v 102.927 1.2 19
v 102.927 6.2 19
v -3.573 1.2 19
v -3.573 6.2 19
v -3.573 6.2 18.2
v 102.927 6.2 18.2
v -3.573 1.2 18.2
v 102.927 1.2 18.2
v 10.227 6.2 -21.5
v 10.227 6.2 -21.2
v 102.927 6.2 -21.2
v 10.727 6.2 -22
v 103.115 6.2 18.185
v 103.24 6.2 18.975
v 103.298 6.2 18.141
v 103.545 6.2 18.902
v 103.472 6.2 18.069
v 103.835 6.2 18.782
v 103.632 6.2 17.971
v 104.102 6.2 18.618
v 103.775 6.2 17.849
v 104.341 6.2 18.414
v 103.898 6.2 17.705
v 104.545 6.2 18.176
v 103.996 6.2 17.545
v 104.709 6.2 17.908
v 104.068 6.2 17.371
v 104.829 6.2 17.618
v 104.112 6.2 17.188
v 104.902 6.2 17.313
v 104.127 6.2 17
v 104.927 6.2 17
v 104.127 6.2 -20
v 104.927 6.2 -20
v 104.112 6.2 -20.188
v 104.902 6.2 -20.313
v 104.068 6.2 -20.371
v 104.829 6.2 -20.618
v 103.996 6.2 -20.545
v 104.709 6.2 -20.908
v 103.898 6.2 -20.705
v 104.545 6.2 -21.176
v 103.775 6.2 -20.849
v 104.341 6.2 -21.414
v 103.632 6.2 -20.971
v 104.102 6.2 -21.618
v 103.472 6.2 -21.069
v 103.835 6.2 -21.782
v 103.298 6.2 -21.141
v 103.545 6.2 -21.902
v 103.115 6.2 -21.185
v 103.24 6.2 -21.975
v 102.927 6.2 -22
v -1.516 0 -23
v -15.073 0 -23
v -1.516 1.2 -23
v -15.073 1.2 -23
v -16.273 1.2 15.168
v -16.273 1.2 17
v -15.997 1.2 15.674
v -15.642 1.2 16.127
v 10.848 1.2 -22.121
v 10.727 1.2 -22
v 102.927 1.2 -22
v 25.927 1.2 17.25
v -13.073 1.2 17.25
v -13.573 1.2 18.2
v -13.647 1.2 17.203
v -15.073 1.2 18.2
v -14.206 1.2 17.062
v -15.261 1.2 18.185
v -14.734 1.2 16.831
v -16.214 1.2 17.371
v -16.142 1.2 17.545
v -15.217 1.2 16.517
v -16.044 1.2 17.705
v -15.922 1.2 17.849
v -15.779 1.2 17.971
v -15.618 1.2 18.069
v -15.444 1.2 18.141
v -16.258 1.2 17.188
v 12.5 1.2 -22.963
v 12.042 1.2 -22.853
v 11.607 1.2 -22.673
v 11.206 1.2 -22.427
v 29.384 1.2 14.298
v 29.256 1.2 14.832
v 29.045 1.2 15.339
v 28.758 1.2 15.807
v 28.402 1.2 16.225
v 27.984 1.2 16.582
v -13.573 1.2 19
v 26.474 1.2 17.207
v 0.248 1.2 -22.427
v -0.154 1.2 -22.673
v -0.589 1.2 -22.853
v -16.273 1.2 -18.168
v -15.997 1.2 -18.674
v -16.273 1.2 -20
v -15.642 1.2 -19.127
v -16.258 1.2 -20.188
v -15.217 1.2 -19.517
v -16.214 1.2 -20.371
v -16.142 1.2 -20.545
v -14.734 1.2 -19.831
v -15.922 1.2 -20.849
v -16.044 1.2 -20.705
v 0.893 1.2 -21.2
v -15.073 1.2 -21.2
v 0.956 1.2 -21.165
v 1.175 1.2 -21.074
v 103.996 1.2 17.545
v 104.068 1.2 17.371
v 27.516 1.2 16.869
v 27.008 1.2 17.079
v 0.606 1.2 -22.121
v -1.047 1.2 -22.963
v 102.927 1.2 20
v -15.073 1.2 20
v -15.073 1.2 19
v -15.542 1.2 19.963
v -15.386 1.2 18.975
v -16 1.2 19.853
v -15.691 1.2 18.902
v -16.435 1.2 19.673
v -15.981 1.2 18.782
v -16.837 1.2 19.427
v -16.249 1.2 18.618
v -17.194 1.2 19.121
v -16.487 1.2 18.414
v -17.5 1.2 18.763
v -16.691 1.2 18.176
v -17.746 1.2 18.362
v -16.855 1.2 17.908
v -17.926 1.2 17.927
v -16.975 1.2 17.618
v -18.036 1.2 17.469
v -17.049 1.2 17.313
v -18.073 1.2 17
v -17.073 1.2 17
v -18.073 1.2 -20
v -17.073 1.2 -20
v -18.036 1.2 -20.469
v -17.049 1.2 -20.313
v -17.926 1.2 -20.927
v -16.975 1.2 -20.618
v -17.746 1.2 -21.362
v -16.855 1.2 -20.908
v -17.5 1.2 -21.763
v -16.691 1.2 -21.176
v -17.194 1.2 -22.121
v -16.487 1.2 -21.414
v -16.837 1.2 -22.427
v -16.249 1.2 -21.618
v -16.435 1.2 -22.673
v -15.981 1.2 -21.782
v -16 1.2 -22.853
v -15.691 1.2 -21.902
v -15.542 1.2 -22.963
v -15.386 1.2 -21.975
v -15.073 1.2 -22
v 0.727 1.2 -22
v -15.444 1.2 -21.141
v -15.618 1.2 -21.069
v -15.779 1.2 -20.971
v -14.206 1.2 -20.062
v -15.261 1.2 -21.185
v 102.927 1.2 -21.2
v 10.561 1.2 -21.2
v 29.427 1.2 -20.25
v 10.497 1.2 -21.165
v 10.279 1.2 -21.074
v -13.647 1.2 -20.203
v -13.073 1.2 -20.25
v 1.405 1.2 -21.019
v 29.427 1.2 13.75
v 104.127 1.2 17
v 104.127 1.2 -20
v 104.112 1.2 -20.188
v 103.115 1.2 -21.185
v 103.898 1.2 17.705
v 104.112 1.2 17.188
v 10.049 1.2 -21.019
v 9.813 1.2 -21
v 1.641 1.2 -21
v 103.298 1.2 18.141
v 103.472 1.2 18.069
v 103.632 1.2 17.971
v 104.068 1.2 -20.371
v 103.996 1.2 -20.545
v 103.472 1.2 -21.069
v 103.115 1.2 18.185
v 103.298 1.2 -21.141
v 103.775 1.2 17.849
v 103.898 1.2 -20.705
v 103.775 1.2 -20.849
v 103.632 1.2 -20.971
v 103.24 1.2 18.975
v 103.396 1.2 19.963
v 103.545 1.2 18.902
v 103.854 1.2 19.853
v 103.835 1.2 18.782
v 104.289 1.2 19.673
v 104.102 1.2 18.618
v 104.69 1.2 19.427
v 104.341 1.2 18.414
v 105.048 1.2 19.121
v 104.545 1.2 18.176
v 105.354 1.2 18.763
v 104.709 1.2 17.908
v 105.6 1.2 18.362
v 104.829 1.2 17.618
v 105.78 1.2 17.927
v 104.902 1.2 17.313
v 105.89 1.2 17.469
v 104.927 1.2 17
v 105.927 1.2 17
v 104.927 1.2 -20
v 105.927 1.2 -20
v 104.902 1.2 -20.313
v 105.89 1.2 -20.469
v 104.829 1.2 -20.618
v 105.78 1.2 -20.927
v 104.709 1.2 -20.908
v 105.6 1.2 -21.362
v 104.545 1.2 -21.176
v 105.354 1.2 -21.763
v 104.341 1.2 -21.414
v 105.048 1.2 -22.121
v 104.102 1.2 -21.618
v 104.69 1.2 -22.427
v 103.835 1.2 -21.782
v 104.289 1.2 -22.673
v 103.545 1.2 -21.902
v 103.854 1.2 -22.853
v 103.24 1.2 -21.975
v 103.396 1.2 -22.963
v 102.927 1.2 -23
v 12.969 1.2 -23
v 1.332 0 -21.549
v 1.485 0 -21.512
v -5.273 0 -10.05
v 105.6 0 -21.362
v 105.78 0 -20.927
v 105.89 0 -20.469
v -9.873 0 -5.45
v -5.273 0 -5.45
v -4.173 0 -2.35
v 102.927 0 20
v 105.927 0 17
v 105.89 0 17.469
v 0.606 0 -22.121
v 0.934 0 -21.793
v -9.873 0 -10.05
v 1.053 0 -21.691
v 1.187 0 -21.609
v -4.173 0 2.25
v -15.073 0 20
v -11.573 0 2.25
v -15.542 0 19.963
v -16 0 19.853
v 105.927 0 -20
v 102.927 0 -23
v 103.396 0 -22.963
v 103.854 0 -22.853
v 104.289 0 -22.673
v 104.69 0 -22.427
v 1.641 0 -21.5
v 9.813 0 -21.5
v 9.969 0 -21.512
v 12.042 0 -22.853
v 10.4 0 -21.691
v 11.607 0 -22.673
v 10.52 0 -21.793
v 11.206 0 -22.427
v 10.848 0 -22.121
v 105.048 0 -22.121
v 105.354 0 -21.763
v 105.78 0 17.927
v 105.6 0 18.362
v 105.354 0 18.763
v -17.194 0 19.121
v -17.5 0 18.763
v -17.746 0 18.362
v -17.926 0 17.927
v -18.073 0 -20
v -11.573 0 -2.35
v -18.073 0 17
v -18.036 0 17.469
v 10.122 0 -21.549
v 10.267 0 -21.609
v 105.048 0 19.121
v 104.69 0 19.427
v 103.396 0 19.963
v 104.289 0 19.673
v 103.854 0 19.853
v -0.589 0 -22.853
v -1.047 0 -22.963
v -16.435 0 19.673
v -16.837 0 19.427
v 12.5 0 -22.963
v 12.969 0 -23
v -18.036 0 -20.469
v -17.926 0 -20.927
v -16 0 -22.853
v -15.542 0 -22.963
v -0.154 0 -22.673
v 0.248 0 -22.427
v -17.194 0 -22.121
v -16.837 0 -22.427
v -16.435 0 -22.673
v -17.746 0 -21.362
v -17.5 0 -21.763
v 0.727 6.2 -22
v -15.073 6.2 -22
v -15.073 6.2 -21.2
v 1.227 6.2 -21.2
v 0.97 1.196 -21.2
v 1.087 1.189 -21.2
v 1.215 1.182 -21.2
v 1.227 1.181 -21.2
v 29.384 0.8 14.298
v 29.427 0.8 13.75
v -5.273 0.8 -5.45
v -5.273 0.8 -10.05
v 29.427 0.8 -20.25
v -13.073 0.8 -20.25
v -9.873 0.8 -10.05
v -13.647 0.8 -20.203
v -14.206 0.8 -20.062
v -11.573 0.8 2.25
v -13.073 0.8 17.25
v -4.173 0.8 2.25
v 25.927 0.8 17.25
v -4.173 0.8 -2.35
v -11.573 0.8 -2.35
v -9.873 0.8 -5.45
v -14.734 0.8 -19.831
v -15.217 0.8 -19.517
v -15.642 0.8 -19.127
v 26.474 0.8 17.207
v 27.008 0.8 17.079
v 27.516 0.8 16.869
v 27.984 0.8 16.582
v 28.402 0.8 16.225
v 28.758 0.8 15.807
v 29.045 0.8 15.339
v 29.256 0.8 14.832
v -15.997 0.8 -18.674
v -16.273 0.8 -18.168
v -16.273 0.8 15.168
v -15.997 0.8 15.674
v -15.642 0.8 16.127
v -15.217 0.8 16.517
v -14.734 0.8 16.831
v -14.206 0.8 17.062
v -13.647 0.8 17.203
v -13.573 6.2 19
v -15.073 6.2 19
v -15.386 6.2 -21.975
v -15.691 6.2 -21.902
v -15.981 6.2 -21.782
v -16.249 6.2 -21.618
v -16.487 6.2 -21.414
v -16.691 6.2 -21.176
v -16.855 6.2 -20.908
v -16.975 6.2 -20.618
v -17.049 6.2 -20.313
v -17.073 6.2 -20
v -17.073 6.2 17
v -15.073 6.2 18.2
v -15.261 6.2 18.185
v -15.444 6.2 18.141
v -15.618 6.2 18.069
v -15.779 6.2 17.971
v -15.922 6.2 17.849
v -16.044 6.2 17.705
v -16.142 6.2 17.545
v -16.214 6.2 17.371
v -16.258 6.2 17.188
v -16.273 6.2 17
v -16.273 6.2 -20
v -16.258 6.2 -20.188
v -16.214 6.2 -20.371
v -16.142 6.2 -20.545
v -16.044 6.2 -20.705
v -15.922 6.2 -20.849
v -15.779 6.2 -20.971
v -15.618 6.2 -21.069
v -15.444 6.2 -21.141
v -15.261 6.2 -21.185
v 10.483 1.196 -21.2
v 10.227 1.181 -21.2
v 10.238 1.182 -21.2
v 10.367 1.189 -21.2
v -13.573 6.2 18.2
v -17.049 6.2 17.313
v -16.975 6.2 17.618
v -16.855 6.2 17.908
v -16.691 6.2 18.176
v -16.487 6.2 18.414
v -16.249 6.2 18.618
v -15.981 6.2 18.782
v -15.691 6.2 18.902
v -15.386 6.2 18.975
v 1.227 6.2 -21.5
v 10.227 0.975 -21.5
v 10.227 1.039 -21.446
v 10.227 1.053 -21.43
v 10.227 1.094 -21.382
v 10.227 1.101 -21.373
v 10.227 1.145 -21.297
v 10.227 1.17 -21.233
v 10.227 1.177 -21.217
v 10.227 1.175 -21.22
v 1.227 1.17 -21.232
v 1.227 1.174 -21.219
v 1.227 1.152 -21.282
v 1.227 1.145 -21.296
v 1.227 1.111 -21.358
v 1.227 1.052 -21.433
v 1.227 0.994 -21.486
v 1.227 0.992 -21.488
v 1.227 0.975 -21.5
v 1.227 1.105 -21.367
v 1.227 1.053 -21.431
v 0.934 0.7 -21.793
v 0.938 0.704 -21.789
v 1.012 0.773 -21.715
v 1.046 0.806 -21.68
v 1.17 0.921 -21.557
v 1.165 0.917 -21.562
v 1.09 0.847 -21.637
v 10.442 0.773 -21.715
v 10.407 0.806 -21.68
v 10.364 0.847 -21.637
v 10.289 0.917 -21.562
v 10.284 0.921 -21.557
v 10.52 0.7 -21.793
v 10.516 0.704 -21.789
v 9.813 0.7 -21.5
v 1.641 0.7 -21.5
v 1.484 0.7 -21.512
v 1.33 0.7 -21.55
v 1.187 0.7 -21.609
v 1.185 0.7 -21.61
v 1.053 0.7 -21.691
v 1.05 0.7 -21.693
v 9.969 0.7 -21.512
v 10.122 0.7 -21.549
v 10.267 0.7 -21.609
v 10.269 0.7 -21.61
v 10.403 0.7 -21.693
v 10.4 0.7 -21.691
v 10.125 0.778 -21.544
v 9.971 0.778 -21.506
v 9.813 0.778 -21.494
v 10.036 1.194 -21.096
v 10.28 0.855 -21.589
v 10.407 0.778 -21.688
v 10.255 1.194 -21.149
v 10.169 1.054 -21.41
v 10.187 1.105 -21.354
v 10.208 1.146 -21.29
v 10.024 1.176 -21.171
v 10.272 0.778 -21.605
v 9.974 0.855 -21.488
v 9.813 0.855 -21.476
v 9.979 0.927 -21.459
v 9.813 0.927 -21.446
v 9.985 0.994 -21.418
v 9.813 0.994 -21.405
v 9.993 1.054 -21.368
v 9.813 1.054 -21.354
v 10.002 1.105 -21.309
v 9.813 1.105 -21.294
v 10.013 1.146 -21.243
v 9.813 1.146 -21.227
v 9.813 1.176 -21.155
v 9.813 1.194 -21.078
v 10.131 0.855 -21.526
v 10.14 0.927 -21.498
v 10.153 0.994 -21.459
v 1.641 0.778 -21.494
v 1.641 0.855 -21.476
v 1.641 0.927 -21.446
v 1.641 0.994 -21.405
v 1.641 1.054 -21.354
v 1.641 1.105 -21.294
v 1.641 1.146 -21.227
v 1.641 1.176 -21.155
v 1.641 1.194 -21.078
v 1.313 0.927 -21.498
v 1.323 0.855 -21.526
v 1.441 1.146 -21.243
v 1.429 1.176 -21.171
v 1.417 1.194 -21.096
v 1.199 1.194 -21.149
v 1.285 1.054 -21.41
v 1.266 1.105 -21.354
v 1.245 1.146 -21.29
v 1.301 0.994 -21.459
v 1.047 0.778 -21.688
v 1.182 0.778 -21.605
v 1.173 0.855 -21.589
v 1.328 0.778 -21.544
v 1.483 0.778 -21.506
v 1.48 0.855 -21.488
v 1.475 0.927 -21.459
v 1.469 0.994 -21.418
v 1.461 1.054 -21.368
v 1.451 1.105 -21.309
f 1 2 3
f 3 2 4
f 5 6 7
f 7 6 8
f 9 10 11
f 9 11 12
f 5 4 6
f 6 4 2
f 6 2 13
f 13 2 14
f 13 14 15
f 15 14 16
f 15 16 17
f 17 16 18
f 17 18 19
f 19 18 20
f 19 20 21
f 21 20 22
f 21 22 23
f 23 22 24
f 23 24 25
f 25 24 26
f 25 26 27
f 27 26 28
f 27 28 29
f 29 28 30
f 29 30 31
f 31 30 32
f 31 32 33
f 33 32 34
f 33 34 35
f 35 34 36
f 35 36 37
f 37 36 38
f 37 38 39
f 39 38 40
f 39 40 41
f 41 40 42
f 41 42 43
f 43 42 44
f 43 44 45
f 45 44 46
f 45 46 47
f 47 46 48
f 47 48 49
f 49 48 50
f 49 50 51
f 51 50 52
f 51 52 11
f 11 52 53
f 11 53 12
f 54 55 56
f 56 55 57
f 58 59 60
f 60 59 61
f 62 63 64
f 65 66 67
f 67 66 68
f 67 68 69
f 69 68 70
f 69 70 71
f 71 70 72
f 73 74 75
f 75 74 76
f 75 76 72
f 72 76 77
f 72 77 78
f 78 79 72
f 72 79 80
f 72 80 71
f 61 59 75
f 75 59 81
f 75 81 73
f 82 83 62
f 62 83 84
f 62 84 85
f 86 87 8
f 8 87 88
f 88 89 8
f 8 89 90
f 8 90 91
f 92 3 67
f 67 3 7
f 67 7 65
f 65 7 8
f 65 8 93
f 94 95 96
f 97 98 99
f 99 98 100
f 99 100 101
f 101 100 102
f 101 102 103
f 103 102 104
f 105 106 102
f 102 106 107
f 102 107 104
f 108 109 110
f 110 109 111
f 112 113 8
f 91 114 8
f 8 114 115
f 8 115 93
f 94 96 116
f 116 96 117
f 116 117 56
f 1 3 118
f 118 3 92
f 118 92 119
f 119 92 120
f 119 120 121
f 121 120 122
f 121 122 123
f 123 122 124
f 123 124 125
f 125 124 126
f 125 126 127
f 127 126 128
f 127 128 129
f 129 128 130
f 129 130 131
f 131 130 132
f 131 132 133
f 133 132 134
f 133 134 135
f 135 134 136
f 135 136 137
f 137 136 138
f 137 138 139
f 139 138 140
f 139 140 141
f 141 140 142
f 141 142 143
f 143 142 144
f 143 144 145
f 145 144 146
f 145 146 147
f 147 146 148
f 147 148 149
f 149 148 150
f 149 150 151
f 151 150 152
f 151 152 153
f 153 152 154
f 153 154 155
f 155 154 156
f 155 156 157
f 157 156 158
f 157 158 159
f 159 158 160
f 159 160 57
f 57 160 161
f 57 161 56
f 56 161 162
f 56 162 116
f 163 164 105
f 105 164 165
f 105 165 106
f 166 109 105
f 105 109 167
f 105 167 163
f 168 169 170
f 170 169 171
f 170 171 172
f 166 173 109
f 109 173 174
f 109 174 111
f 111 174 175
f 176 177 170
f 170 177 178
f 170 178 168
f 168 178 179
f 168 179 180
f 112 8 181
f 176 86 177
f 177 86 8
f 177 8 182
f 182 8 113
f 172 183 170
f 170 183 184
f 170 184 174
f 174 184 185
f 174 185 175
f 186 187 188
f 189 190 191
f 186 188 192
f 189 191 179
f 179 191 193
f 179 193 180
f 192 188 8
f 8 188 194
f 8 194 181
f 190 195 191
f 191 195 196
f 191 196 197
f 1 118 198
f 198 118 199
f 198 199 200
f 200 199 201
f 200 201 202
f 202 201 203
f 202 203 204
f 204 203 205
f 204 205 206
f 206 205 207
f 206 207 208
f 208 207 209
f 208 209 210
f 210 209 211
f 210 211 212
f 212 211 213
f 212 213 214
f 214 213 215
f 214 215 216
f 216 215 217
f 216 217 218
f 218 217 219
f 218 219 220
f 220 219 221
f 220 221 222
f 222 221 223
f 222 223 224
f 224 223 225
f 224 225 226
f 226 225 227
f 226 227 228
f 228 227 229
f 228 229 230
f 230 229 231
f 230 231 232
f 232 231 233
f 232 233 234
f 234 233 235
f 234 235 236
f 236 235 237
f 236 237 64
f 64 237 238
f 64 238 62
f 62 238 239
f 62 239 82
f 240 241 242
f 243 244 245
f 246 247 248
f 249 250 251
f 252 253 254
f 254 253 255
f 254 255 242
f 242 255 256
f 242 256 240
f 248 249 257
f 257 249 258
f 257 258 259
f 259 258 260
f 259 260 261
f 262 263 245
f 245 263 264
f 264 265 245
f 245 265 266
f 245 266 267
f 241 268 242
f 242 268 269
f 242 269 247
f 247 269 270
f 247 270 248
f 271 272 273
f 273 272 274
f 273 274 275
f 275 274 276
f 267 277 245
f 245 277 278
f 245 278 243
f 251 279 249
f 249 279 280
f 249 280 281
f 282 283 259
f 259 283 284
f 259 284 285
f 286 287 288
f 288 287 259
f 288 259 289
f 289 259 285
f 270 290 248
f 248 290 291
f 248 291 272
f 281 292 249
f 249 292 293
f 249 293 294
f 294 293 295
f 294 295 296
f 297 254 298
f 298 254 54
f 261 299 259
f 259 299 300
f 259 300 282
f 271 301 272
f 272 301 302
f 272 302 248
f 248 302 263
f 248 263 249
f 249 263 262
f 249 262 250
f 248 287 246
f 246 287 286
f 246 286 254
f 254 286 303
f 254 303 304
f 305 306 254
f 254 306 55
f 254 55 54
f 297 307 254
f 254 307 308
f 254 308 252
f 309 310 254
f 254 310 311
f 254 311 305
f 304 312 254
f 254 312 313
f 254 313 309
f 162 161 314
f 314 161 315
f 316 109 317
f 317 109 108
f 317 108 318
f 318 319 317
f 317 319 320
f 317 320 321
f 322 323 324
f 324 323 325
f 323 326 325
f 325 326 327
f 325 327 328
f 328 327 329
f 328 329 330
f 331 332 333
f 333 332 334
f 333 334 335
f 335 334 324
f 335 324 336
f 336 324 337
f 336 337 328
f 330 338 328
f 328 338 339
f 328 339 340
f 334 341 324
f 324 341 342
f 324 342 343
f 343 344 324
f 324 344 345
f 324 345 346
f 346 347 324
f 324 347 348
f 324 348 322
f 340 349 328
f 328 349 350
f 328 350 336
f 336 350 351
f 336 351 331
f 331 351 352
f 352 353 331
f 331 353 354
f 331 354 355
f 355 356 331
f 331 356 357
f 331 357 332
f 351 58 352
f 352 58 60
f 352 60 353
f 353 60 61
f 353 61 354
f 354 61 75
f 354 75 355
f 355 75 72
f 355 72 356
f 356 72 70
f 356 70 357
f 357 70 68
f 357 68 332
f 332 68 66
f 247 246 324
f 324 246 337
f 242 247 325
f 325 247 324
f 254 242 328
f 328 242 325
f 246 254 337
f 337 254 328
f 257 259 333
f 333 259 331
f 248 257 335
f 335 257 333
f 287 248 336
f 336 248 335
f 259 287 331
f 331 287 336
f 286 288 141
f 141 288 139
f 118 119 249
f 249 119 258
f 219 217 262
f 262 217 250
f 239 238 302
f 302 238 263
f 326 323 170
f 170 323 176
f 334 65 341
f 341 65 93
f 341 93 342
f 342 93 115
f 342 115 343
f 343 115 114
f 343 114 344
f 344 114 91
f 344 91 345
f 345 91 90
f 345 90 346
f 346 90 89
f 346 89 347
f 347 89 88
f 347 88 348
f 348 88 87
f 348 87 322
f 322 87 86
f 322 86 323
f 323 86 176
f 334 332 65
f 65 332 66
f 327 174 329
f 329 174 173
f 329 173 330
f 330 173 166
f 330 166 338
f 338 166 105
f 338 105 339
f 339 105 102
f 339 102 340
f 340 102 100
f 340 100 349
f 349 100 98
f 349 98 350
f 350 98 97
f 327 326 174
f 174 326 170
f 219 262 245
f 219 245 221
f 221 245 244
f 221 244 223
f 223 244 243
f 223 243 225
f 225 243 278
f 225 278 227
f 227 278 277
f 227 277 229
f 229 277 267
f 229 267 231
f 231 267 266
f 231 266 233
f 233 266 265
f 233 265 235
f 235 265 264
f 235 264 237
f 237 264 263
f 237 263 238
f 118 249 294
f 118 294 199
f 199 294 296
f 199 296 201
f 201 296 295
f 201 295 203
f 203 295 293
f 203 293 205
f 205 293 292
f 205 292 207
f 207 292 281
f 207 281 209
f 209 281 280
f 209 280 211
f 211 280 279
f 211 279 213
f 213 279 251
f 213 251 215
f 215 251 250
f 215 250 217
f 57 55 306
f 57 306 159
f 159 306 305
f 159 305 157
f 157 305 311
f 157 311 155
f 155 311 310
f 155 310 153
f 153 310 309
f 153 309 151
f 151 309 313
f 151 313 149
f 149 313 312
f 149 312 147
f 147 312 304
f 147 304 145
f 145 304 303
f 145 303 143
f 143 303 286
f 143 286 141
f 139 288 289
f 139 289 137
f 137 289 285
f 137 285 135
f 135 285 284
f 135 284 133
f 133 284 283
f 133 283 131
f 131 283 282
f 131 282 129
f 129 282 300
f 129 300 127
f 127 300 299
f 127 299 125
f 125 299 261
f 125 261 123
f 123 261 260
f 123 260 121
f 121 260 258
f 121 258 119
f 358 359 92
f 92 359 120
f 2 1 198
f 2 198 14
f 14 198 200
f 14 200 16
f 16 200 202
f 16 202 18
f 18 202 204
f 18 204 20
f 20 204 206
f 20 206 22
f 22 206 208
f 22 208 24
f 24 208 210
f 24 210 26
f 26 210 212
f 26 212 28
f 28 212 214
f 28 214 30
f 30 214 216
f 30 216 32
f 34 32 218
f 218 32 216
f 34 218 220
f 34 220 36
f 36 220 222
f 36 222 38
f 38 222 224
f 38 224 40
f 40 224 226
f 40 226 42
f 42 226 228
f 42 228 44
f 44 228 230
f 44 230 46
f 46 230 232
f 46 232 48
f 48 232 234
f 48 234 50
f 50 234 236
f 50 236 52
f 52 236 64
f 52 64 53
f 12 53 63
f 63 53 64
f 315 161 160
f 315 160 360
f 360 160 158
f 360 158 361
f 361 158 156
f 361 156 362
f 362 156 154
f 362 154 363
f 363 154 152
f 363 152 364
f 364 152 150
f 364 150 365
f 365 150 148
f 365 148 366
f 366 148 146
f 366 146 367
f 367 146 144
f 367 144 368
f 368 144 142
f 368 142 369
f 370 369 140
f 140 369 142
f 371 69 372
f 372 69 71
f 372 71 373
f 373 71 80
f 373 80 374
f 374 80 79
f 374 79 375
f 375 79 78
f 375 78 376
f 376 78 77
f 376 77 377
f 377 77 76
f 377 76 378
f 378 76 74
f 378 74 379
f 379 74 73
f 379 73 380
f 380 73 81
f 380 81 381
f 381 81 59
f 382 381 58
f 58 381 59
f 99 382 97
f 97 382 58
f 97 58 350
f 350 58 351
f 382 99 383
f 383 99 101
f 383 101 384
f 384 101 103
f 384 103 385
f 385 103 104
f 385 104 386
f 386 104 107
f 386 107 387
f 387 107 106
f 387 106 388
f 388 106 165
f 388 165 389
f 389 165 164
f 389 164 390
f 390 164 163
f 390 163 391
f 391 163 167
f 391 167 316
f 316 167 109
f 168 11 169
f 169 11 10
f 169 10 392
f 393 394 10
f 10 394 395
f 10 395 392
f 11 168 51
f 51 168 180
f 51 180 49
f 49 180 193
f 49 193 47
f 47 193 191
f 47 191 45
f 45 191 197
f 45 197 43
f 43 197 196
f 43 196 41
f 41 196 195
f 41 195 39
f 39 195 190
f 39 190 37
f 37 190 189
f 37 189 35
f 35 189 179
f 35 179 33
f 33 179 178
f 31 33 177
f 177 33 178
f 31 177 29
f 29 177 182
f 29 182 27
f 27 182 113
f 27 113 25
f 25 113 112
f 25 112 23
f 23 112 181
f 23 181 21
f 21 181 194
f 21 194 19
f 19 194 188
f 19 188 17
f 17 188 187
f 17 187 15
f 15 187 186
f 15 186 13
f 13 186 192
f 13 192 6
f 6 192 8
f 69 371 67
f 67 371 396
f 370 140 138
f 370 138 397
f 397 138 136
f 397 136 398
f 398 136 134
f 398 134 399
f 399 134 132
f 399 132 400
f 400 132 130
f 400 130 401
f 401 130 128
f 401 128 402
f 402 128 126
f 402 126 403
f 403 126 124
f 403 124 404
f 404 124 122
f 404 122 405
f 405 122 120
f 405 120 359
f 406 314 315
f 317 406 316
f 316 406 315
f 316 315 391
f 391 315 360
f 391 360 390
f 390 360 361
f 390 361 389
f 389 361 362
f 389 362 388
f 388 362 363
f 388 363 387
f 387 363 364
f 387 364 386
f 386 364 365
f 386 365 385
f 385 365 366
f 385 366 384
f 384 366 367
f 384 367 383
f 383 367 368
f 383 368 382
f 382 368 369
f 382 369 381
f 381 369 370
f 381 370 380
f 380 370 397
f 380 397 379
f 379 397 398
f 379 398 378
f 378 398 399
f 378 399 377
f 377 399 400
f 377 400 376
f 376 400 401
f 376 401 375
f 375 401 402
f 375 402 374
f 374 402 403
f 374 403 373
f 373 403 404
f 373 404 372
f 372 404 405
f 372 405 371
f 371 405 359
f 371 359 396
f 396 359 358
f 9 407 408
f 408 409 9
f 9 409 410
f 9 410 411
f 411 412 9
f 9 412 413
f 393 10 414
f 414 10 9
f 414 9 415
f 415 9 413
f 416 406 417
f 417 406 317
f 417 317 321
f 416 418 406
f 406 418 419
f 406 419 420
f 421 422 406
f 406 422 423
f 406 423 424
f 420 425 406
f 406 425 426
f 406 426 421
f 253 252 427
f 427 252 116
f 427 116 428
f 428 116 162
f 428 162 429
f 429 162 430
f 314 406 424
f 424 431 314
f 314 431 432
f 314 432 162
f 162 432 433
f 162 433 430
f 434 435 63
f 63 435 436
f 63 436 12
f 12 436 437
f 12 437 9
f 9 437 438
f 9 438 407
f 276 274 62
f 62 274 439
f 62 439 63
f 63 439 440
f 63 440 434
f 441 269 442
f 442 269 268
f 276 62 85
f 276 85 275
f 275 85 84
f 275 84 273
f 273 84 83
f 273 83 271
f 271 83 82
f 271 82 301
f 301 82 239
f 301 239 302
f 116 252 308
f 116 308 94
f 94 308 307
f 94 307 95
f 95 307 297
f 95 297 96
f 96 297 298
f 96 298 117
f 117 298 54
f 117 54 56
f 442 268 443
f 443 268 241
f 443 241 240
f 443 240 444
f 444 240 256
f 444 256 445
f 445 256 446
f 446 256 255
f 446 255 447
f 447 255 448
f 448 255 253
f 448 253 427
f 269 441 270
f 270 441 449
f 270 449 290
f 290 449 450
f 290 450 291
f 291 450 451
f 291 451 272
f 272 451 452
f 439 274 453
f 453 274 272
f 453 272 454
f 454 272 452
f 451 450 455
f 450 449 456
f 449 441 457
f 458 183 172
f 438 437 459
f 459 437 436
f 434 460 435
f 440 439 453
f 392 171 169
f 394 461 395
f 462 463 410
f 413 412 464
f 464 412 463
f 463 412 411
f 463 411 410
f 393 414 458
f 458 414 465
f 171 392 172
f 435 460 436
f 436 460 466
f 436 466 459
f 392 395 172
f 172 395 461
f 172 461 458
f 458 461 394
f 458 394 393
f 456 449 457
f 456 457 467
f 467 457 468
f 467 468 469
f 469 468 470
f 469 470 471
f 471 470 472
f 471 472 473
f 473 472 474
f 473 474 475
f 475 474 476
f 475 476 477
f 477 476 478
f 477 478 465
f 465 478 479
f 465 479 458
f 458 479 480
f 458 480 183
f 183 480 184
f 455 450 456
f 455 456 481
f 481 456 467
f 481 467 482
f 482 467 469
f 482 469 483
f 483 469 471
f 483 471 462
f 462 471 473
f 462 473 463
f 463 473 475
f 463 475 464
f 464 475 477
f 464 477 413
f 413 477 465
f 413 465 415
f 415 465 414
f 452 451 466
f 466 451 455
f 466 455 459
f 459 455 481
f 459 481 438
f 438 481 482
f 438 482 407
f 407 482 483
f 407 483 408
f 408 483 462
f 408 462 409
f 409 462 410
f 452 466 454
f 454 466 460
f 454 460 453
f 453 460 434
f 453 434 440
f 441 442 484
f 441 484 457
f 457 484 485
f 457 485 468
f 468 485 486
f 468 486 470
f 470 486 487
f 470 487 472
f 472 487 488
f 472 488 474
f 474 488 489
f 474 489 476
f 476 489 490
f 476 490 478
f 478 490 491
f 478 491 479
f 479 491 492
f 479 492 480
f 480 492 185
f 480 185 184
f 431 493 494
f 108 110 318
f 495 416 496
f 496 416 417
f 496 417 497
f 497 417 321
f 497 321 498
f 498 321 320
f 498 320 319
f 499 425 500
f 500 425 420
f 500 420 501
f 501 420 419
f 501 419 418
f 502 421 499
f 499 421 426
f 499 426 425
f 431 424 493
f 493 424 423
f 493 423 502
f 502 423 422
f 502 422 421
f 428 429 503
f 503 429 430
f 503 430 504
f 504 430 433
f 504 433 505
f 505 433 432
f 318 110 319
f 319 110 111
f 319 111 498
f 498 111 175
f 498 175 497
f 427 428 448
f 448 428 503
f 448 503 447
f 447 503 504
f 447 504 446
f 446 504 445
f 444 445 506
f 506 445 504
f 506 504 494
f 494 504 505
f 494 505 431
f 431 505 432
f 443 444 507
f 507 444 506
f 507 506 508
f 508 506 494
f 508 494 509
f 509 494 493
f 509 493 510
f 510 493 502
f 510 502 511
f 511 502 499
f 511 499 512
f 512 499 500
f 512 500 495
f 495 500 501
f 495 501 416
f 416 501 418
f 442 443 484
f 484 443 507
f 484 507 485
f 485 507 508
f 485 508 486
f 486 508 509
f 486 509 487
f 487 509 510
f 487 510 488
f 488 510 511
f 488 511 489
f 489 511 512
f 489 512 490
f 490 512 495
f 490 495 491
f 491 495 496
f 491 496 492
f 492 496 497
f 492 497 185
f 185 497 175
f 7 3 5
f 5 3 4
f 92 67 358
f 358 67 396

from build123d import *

# Parameters (mm, degrees)
SKETCH_1_W               = 124
SKETCH_1_H               = 43
EXTRUDE_1_DEPTH          = 1.2
CUT_EXTRUDE_1_REACH      = 110.402
SKETCH_3_W               = 7.4
SKETCH_3_H               = 4.6
SKETCH_3_W_2             = 4.6
CUT_EXTRUDE_2_DEPTH      = 0.4
FILLET_1_R               = 3
EXTRUDE_START            = 5
EXTRUDE_5_DEPTH          = 5
SKETCH_7_W               = 0.8
SKETCH_7_H               = 5.4
EXTRUDE_6_DEPTH          = 33.335489
SKETCH_8_W               = 4.5
SKETCH_8_H               = 0.8
CUT_EXTRUDE_3_DEPTH      = 5
CHAMFER_2_SIZE           = 0.5
CUT_EXTRUDE_5_DEPTH      = 109.510329697
CUT_EXTRUDE_5_DEPTH_BACK = 109.510329697
FILLET_2_R               = 3
FILLET_3_R               = 1
FILLET_4_R               = 0.5
SKETCH_10_W              = 10
SKETCH_10_H              = 0.8
CUT_EXTRUDE_6_DEPTH      = 5


with BuildPart() as part:
    # Эскиз1 → Бобышка-Вытянуть1 (new body)
    with BuildSketch(Plane(origin=(0, 0, 0), x_dir=(1, 0, 0), z_dir=(0, 1, 0))):
        with Locations((43.92682215, 1.5)):
            Rectangle(SKETCH_1_W, SKETCH_1_H)
    extrude(amount=EXTRUDE_1_DEPTH)

    # Эскиз3 → Вырез-Вытянуть1 (cut, up to next)
    with BuildSketch(Plane.XZ, mode=Mode.PRIVATE) as cut_extrude_1_sk1:
        with Locations((-7.87317785, -0.05)):
            Rectangle(SKETCH_3_W, SKETCH_3_H)
    cut_extrude_1_tool1 = extrude(cut_extrude_1_sk1.sketch, amount=-CUT_EXTRUDE_1_REACH, mode=Mode.PRIVATE) & part.part
    # Эскиз3 → Вырез-Вытянуть1 (cut, up to next)
    with BuildSketch(Plane.XZ, mode=Mode.PRIVATE) as cut_extrude_1_sk2:
        with Locations((-7.57317785, -7.75)):
            Rectangle(SKETCH_3_W_2, SKETCH_3_H)
    cut_extrude_1_tool2 = extrude(cut_extrude_1_sk2.sketch, amount=-CUT_EXTRUDE_1_REACH, mode=Mode.PRIVATE) & part.part
    add(cut_extrude_1_tool1.solids().sort_by_distance((-7.873178, 0, -0.05))[0], mode=Mode.SUBTRACT)
    add(cut_extrude_1_tool2.solids().sort_by_distance((-7.573178, 0, -7.75))[0], mode=Mode.SUBTRACT)

    # Эскиз4 → Вырез-Вытянуть2 (cut)
    with BuildSketch(Plane(origin=(0, 1.2, 0), x_dir=(1, 0, 0), z_dir=(0, 1, 0))):
        with BuildLine():
            Line((4.110011464, 20.25), (7.343632837, 20.25))
            Line((7.343632837, 20.25), (29.42682215, 20.25))
            Line((29.42682215, 20.25), (29.42682215, -13.75))
            ThreePointArc((29.42682215, -13.75), (28.401695885, -16.224873734), (25.92682215, -17.25))
            Line((25.92682215, -17.25), (-13.07317785, -17.25))
            ThreePointArc((-13.07317785, -17.25), (-15.548051584, -16.224873734), (-16.57317785, -13.75))
            Line((-16.57317785, -13.75), (-16.57317785, 16.75))
            ThreePointArc((-16.57317785, 16.75), (-15.548051584, 19.224873734), (-13.07317785, 20.25))
            Line((-13.07317785, 20.25), (4.110011464, 20.25))
        make_face()
    extrude(amount=-CUT_EXTRUDE_2_DEPTH, mode=Mode.SUBTRACT)

    # Скругление1
    fillet_1_edges = [part.edges().sort_by_distance(p)[0] for p in [
        (-18.07317785, 0.6, -23),
        (105.92682215, 0.6, -23),
        (105.92682215, 0.6, 20),
        (-18.07317785, 0.6, 20),
    ]]
    fillet(fillet_1_edges, radius=FILLET_1_R)

    # Эскиз5 → Бобышка-Вытянуть5 (add)
    with BuildSketch(Plane(origin=(0, 1.2, 0), x_dir=(1, 0, 0), z_dir=(0, 1, 0)).offset(EXTRUDE_START)):
        with BuildLine():
            ThreePointArc((102.92682215, -19), (104.341035713, -18.414213562), (104.92682215, -17))
            Line((104.92682215, -17), (104.92682215, 20))
            ThreePointArc((104.92682215, 20), (104.341035713, 21.414213562), (102.92682215, 22))
            Line((102.92682215, 22), (-15.07317785, 22))
            ThreePointArc((-15.07317785, 22), (-16.487391412, 21.414213562), (-17.07317785, 20))
            Line((-17.07317785, 20), (-17.07317785, -17))
            ThreePointArc((-17.07317785, -17), (-16.487391412, -18.414213562), (-15.07317785, -19))
            Line((-15.07317785, -19), (102.92682215, -19))
        make_face()
        with BuildLine():
            Line((102.92682215, -18.2), (-15.07317785, -18.2))
            ThreePointArc((-15.07317785, -18.2), (-15.921705987, -17.848528137), (-16.27317785, -17))
            Line((-16.27317785, -17), (-16.27317785, -15.167744688))
            ThreePointArc((-16.27317785, -15.167744688), (-16.497356583, -14.474568837), (-16.57317785, -13.75))
            Line((-16.57317785, -13.75), (-16.57317785, 16.75))
            ThreePointArc((-16.57317785, 16.75), (-16.497356583, 17.474568837), (-16.27317785, 18.167744688))
            Line((-16.27317785, 18.167744688), (-16.27317785, 20))
            ThreePointArc((-16.27317785, 20), (-15.921705987, 20.848528137), (-15.07317785, 21.2))
            Line((-15.07317785, 21.2), (102.92682215, 21.2))
            ThreePointArc((102.92682215, 21.2), (103.775350288, 20.848528137), (104.12682215, 20))
            Line((104.12682215, 20), (104.12682215, -17))
            ThreePointArc((104.12682215, -17), (103.775350288, -17.848528137), (102.92682215, -18.2))
        make_face(mode=Mode.SUBTRACT)
    extrude(amount=-EXTRUDE_5_DEPTH)

    # Эскиз7 → Бобышка-Вытянуть6 (add)
    with BuildSketch(Plane(origin=(0, 0, 15.167744688), x_dir=(-1, 0, 0), z_dir=(0, 0, -1))):
        with Locations((16.67317785, 3.5)):
            Rectangle(SKETCH_7_W, SKETCH_7_H)
    extrude(amount=EXTRUDE_6_DEPTH)

    # Эскиз8 → Вырез-Вытянуть3 (cut)
    with BuildSketch(Plane(origin=(0, 6.2, 0), x_dir=(1, 0, 0), z_dir=(0, 1, 0))):
        with Locations((7.97682215, 21.6)):
            Rectangle(SKETCH_8_W, SKETCH_8_H)
        with Locations((3.47682215, 21.6)):
            Rectangle(SKETCH_8_W, SKETCH_8_H)
    extrude(amount=-CUT_EXTRUDE_3_DEPTH, mode=Mode.SUBTRACT)

    # Фаска2
    chamfer_2_edges = [part.edges().sort_by_distance(p)[0] for p in [
        (1.22682215, 3.7, -22),
        (10.22682215, 3.7, -22),
    ]]
    chamfer(chamfer_2_edges, length=CHAMFER_2_SIZE)

    # Эскиз9 → Вырез-Вытянуть5 (cut, two sides: drawn at the far end of the back side and taken through both)
    with BuildSketch(Plane(origin=(0, 1.2, 0), x_dir=(1, 0, 0), z_dir=(0, 1, 0)).offset(-CUT_EXTRUDE_5_DEPTH_BACK)):
        Polygon((1.22682215, 21.5), (10.22682215, 21.5), (10.72682215, 22), (11.72682215, 23), (-0.27317785, 23), (0.72682215, 22), align=None)
    extrude(amount=CUT_EXTRUDE_5_DEPTH + CUT_EXTRUDE_5_DEPTH_BACK, mode=Mode.SUBTRACT)

    # Скругление2
    fillet_2_edges = [part.edges().sort_by_distance(p)[0] for p in [
        (-0.27317785, 0.6, -23),
        (11.72682215, 0.6, -23),
    ]]
    fillet(fillet_2_edges, radius=FILLET_2_R)

    # Скругление3
    fillet_3_edges = [part.edges().sort_by_distance(p)[0] for p in [
        (1.22682215, 0.6, -21.5),
        (10.22682215, 0.6, -21.5),
    ]]
    fillet(fillet_3_edges, radius=FILLET_3_R)

    # Скругление4
    # the kernel refuses this fillet: 0.5 mm, written as the material it takes off along each edge
    with BuildSketch(Plane(origin=(9.812608588, 1.2, -21.5), x_dir=(0, 0, 1), z_dir=(-1, 0, 0))) as fillet_4_piece_1:
        with BuildLine():
            CenterArc((FILLET_4_R, -FILLET_4_R), FILLET_4_R, 90, 90)
            Line((0, -FILLET_4_R), (0, 0))
            Line((0, 0), (FILLET_4_R, 0))
        make_face()
    extrude(amount=8.171572875, mode=Mode.SUBTRACT)
    with BuildSketch(Plane(origin=(1.641035713, 1.2, -22.5), x_dir=(-0.8939437975787546, 0, -0.448179078907611), z_dir=(0.448179078907611, 0, -0.8939437975787546))) as fillet_4_piece_2_section:
        with BuildLine():
            CenterArc((1 + FILLET_4_R, -FILLET_4_R), FILLET_4_R, 90, 90)
            Line((1, -FILLET_4_R), (1, 0))
            Line((1, 0), (1 + FILLET_4_R, 0))
        make_face()
    fillet_4_piece_2 = revolve(axis=Axis((1.641035713, 1.2, -22.5), (0, 1, 0)), revolution_arc=116.626915432, mode=Mode.PRIVATE)
    fillet_4_piece_2 = split(fillet_4_piece_2, bisect_by=Plane(origin=(1.130412309, 1.014643197, -21.596409841), z_dir=(0.7071067811865498, 0, -0.7071067811865454)), keep=Keep.TOP, mode=Mode.PRIVATE)
    add(fillet_4_piece_2, mode=Mode.SUBTRACT)
    with BuildSketch(Plane(origin=(1.641035713, 1.2, -22.5), x_dir=(-0.8939437975787546, 0, -0.448179078907611), z_dir=(0.448179078907611, 0, -0.8939437975787546))) as fillet_4_piece_3_section:
        with BuildLine():
            CenterArc((1 + FILLET_4_R, -FILLET_4_R), FILLET_4_R, 90, 90)
            Line((1, -FILLET_4_R), (1, 0))
            Line((1, 0), (1 + FILLET_4_R, 0))
        make_face()
    fillet_4_piece_3 = revolve(axis=Axis((1.641035713, 1.2, -22.5), (0, 1, 0)), revolution_arc=116.626915432, mode=Mode.PRIVATE)
    fillet_4_piece_3 = split(fillet_4_piece_3, bisect_by=Plane(origin=(1.22682215, 1.150324025, -21.336464166), z_dir=(1, 0, 0)), keep=Keep.TOP, mode=Mode.PRIVATE)
    add(fillet_4_piece_3, mode=Mode.SUBTRACT)
    with BuildSketch(Plane(origin=(1.641035713, 1.2, -22.5), x_dir=(-0.8939437975787546, 0, -0.448179078907611), z_dir=(0.448179078907611, 0, -0.8939437975787546))) as fillet_4_piece_4_section:
        with BuildLine():
            CenterArc((1 + FILLET_4_R, -FILLET_4_R), FILLET_4_R, 90, 90)
            Line((1, -FILLET_4_R), (1, 0))
            Line((1, 0), (1 + FILLET_4_R, 0))
        make_face()
    fillet_4_piece_4 = revolve(axis=Axis((1.641035713, 1.2, -22.5), (0, 1, 0)), revolution_arc=116.626915432, mode=Mode.PRIVATE)
    fillet_4_piece_4 = split(fillet_4_piece_4, bisect_by=Plane(origin=(1.152970199, 1.196161592, -21.2), z_dir=(0, 0, 1)), keep=Keep.TOP, mode=Mode.PRIVATE)
    add(fillet_4_piece_4, mode=Mode.SUBTRACT)
    with BuildSketch(Plane(origin=(9.812608588, 1.2, -22.5), x_dir=(0.8939437975787601, 0, -0.4481790789075999), z_dir=(-0.4481790789075999, 0, -0.8939437975787601))) as fillet_4_piece_5_section:
        with BuildLine():
            CenterArc((1 + FILLET_4_R, FILLET_4_R), FILLET_4_R, 180, 90)
            Line((1 + FILLET_4_R, 0), (1, 0))
            Line((1, 0), (1, FILLET_4_R))
        make_face()
    fillet_4_piece_5 = revolve(axis=Axis((9.812608588, 1.2, -22.5), (0, -1, 0)), revolution_arc=116.626915432, mode=Mode.PRIVATE)
    fillet_4_piece_5 = split(fillet_4_piece_5, bisect_by=Plane(origin=(10.323231991, 1.014642922, -21.59640984), z_dir=(-0.7071067811865426, 0, -0.7071067811865526)), keep=Keep.TOP, mode=Mode.PRIVATE)
    add(fillet_4_piece_5, mode=Mode.SUBTRACT)
    with BuildSketch(Plane(origin=(9.812608588, 1.2, -22.5), x_dir=(0.8939437975787601, 0, -0.4481790789075999), z_dir=(-0.4481790789075999, 0, -0.8939437975787601))) as fillet_4_piece_6_section:
        with BuildLine():
            CenterArc((1 + FILLET_4_R, FILLET_4_R), FILLET_4_R, 180, 90)
            Line((1 + FILLET_4_R, 0), (1, 0))
            Line((1, 0), (1, FILLET_4_R))
        make_face()
    fillet_4_piece_6 = revolve(axis=Axis((9.812608588, 1.2, -22.5), (0, -1, 0)), revolution_arc=116.626915432, mode=Mode.PRIVATE)
    fillet_4_piece_6 = split(fillet_4_piece_6, bisect_by=Plane(origin=(10.22682215, 1.150324024, -21.336464168), z_dir=(-1, 0, 0)), keep=Keep.TOP, mode=Mode.PRIVATE)
    add(fillet_4_piece_6, mode=Mode.SUBTRACT)
    with BuildSketch(Plane(origin=(9.812608588, 1.2, -22.5), x_dir=(0.8939437975787601, 0, -0.4481790789075999), z_dir=(-0.4481790789075999, 0, -0.8939437975787601))) as fillet_4_piece_7_section:
        with BuildLine():
            CenterArc((1 + FILLET_4_R, FILLET_4_R), FILLET_4_R, 180, 90)
            Line((1 + FILLET_4_R, 0), (1, 0))
            Line((1, 0), (1, FILLET_4_R))
        make_face()
    fillet_4_piece_7 = revolve(axis=Axis((9.812608588, 1.2, -22.5), (0, -1, 0)), revolution_arc=116.626915432, mode=Mode.PRIVATE)
    fillet_4_piece_7 = split(fillet_4_piece_7, bisect_by=Plane(origin=(10.300674101, 1.196161592, -21.2), z_dir=(0, 0, 1)), keep=Keep.TOP, mode=Mode.PRIVATE)
    add(fillet_4_piece_7, mode=Mode.SUBTRACT)

    # Эскиз10 → Вырез-Вытянуть6 (cut)
    with BuildSketch(Plane(origin=(0, 6.2, 0), x_dir=(1, 0, 0), z_dir=(0, 1, 0))):
        with Locations((-8.57317785, -18.6)):
            Rectangle(SKETCH_10_W, SKETCH_10_H)
    extrude(amount=-CUT_EXTRUDE_6_DEPTH, mode=Mode.SUBTRACT)


solid = part.part
